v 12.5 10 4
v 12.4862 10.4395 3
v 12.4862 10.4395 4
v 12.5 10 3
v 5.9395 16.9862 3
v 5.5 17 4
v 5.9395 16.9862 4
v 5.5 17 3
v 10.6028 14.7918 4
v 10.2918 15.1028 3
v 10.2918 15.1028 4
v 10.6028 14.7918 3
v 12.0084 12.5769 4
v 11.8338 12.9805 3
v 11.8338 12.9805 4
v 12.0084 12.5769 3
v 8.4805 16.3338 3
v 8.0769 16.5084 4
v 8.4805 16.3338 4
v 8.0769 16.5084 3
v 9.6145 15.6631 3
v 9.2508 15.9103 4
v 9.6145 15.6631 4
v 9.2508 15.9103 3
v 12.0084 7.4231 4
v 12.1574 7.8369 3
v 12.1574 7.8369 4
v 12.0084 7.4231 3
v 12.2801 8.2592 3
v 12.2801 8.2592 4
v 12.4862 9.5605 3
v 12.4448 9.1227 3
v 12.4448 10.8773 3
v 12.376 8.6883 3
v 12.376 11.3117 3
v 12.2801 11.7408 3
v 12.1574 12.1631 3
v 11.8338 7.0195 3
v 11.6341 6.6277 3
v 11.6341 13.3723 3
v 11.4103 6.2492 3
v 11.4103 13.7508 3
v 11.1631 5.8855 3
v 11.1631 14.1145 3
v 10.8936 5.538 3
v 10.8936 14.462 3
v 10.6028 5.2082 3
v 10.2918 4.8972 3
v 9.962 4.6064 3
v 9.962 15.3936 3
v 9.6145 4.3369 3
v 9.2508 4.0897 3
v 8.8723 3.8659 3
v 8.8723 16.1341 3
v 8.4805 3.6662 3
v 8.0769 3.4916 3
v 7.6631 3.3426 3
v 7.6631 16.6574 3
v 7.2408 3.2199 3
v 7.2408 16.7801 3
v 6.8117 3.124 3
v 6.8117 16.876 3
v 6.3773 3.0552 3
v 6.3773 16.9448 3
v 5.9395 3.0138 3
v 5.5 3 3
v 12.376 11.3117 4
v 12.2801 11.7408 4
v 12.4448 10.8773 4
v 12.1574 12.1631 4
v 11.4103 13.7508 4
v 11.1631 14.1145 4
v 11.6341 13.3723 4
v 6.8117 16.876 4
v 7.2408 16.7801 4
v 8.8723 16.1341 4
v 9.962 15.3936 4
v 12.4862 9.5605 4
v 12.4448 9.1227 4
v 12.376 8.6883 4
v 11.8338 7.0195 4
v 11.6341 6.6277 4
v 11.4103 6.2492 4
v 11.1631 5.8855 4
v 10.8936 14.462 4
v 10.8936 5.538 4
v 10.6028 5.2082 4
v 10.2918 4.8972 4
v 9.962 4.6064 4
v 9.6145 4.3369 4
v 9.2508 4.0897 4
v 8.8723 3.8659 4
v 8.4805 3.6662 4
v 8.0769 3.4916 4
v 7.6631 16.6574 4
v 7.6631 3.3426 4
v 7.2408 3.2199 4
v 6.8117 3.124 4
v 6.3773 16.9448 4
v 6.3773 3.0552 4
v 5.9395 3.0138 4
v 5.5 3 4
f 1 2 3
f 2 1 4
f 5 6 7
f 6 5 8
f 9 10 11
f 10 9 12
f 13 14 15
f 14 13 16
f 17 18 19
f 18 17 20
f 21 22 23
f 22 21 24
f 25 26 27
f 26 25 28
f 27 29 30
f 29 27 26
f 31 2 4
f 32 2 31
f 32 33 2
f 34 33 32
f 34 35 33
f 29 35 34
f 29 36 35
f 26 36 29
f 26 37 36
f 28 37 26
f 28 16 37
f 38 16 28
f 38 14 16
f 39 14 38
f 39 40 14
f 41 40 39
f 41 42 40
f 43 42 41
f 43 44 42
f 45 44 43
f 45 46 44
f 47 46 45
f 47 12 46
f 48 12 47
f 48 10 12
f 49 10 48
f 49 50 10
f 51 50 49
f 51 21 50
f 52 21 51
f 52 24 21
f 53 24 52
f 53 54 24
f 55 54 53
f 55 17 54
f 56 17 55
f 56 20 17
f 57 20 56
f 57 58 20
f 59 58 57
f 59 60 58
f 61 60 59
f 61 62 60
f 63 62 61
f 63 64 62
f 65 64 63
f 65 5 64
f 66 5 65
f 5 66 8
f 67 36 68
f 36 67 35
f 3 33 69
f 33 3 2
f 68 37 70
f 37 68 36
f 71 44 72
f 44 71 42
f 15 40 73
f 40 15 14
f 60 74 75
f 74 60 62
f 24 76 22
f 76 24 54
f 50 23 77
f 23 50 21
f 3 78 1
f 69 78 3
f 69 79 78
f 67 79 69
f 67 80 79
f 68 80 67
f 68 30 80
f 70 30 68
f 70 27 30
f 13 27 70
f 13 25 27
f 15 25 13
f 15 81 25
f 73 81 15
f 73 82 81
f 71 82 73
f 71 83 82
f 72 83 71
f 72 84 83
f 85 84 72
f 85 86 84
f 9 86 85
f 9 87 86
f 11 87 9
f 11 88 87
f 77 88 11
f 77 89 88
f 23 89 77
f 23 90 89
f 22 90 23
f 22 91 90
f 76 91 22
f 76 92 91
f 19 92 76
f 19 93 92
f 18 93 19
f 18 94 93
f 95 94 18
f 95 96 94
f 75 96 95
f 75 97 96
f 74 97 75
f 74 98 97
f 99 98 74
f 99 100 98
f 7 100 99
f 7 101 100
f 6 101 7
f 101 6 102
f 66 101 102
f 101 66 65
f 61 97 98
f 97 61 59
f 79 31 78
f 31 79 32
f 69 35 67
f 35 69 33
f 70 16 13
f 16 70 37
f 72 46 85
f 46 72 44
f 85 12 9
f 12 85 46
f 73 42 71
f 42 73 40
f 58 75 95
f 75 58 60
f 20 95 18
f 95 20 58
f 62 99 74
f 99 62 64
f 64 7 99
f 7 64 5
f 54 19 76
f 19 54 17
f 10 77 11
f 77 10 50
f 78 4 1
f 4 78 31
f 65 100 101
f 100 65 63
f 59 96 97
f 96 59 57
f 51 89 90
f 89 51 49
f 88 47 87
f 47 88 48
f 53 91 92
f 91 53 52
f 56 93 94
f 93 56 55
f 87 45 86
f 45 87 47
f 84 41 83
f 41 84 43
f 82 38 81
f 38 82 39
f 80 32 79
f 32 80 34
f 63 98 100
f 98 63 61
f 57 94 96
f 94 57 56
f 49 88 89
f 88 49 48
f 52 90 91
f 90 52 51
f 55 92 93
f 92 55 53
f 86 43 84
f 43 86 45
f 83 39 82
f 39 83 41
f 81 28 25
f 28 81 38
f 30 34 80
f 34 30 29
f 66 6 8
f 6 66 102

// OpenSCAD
$fn = 100;
s = 0.0001;

module base(){
    minkowski(){
        translate([1,1,0]) cube([18, 18, 2]);
        cylinder(1,1,1);
    }
}

module thore(thore_radius, tube_diameter, angle){
    rotate_extrude(angle=angle) {
        translate([thore_radius - tube_diameter/2, 0])circle(d=tube_diameter);
    }
}
//translate([0,0,-10]) color("red")
//base();

translate([5.5,10,3])
difference(){
    cylinder(1, 7, 7);
    translate([-20, -10, -1]) cube(20);
}
